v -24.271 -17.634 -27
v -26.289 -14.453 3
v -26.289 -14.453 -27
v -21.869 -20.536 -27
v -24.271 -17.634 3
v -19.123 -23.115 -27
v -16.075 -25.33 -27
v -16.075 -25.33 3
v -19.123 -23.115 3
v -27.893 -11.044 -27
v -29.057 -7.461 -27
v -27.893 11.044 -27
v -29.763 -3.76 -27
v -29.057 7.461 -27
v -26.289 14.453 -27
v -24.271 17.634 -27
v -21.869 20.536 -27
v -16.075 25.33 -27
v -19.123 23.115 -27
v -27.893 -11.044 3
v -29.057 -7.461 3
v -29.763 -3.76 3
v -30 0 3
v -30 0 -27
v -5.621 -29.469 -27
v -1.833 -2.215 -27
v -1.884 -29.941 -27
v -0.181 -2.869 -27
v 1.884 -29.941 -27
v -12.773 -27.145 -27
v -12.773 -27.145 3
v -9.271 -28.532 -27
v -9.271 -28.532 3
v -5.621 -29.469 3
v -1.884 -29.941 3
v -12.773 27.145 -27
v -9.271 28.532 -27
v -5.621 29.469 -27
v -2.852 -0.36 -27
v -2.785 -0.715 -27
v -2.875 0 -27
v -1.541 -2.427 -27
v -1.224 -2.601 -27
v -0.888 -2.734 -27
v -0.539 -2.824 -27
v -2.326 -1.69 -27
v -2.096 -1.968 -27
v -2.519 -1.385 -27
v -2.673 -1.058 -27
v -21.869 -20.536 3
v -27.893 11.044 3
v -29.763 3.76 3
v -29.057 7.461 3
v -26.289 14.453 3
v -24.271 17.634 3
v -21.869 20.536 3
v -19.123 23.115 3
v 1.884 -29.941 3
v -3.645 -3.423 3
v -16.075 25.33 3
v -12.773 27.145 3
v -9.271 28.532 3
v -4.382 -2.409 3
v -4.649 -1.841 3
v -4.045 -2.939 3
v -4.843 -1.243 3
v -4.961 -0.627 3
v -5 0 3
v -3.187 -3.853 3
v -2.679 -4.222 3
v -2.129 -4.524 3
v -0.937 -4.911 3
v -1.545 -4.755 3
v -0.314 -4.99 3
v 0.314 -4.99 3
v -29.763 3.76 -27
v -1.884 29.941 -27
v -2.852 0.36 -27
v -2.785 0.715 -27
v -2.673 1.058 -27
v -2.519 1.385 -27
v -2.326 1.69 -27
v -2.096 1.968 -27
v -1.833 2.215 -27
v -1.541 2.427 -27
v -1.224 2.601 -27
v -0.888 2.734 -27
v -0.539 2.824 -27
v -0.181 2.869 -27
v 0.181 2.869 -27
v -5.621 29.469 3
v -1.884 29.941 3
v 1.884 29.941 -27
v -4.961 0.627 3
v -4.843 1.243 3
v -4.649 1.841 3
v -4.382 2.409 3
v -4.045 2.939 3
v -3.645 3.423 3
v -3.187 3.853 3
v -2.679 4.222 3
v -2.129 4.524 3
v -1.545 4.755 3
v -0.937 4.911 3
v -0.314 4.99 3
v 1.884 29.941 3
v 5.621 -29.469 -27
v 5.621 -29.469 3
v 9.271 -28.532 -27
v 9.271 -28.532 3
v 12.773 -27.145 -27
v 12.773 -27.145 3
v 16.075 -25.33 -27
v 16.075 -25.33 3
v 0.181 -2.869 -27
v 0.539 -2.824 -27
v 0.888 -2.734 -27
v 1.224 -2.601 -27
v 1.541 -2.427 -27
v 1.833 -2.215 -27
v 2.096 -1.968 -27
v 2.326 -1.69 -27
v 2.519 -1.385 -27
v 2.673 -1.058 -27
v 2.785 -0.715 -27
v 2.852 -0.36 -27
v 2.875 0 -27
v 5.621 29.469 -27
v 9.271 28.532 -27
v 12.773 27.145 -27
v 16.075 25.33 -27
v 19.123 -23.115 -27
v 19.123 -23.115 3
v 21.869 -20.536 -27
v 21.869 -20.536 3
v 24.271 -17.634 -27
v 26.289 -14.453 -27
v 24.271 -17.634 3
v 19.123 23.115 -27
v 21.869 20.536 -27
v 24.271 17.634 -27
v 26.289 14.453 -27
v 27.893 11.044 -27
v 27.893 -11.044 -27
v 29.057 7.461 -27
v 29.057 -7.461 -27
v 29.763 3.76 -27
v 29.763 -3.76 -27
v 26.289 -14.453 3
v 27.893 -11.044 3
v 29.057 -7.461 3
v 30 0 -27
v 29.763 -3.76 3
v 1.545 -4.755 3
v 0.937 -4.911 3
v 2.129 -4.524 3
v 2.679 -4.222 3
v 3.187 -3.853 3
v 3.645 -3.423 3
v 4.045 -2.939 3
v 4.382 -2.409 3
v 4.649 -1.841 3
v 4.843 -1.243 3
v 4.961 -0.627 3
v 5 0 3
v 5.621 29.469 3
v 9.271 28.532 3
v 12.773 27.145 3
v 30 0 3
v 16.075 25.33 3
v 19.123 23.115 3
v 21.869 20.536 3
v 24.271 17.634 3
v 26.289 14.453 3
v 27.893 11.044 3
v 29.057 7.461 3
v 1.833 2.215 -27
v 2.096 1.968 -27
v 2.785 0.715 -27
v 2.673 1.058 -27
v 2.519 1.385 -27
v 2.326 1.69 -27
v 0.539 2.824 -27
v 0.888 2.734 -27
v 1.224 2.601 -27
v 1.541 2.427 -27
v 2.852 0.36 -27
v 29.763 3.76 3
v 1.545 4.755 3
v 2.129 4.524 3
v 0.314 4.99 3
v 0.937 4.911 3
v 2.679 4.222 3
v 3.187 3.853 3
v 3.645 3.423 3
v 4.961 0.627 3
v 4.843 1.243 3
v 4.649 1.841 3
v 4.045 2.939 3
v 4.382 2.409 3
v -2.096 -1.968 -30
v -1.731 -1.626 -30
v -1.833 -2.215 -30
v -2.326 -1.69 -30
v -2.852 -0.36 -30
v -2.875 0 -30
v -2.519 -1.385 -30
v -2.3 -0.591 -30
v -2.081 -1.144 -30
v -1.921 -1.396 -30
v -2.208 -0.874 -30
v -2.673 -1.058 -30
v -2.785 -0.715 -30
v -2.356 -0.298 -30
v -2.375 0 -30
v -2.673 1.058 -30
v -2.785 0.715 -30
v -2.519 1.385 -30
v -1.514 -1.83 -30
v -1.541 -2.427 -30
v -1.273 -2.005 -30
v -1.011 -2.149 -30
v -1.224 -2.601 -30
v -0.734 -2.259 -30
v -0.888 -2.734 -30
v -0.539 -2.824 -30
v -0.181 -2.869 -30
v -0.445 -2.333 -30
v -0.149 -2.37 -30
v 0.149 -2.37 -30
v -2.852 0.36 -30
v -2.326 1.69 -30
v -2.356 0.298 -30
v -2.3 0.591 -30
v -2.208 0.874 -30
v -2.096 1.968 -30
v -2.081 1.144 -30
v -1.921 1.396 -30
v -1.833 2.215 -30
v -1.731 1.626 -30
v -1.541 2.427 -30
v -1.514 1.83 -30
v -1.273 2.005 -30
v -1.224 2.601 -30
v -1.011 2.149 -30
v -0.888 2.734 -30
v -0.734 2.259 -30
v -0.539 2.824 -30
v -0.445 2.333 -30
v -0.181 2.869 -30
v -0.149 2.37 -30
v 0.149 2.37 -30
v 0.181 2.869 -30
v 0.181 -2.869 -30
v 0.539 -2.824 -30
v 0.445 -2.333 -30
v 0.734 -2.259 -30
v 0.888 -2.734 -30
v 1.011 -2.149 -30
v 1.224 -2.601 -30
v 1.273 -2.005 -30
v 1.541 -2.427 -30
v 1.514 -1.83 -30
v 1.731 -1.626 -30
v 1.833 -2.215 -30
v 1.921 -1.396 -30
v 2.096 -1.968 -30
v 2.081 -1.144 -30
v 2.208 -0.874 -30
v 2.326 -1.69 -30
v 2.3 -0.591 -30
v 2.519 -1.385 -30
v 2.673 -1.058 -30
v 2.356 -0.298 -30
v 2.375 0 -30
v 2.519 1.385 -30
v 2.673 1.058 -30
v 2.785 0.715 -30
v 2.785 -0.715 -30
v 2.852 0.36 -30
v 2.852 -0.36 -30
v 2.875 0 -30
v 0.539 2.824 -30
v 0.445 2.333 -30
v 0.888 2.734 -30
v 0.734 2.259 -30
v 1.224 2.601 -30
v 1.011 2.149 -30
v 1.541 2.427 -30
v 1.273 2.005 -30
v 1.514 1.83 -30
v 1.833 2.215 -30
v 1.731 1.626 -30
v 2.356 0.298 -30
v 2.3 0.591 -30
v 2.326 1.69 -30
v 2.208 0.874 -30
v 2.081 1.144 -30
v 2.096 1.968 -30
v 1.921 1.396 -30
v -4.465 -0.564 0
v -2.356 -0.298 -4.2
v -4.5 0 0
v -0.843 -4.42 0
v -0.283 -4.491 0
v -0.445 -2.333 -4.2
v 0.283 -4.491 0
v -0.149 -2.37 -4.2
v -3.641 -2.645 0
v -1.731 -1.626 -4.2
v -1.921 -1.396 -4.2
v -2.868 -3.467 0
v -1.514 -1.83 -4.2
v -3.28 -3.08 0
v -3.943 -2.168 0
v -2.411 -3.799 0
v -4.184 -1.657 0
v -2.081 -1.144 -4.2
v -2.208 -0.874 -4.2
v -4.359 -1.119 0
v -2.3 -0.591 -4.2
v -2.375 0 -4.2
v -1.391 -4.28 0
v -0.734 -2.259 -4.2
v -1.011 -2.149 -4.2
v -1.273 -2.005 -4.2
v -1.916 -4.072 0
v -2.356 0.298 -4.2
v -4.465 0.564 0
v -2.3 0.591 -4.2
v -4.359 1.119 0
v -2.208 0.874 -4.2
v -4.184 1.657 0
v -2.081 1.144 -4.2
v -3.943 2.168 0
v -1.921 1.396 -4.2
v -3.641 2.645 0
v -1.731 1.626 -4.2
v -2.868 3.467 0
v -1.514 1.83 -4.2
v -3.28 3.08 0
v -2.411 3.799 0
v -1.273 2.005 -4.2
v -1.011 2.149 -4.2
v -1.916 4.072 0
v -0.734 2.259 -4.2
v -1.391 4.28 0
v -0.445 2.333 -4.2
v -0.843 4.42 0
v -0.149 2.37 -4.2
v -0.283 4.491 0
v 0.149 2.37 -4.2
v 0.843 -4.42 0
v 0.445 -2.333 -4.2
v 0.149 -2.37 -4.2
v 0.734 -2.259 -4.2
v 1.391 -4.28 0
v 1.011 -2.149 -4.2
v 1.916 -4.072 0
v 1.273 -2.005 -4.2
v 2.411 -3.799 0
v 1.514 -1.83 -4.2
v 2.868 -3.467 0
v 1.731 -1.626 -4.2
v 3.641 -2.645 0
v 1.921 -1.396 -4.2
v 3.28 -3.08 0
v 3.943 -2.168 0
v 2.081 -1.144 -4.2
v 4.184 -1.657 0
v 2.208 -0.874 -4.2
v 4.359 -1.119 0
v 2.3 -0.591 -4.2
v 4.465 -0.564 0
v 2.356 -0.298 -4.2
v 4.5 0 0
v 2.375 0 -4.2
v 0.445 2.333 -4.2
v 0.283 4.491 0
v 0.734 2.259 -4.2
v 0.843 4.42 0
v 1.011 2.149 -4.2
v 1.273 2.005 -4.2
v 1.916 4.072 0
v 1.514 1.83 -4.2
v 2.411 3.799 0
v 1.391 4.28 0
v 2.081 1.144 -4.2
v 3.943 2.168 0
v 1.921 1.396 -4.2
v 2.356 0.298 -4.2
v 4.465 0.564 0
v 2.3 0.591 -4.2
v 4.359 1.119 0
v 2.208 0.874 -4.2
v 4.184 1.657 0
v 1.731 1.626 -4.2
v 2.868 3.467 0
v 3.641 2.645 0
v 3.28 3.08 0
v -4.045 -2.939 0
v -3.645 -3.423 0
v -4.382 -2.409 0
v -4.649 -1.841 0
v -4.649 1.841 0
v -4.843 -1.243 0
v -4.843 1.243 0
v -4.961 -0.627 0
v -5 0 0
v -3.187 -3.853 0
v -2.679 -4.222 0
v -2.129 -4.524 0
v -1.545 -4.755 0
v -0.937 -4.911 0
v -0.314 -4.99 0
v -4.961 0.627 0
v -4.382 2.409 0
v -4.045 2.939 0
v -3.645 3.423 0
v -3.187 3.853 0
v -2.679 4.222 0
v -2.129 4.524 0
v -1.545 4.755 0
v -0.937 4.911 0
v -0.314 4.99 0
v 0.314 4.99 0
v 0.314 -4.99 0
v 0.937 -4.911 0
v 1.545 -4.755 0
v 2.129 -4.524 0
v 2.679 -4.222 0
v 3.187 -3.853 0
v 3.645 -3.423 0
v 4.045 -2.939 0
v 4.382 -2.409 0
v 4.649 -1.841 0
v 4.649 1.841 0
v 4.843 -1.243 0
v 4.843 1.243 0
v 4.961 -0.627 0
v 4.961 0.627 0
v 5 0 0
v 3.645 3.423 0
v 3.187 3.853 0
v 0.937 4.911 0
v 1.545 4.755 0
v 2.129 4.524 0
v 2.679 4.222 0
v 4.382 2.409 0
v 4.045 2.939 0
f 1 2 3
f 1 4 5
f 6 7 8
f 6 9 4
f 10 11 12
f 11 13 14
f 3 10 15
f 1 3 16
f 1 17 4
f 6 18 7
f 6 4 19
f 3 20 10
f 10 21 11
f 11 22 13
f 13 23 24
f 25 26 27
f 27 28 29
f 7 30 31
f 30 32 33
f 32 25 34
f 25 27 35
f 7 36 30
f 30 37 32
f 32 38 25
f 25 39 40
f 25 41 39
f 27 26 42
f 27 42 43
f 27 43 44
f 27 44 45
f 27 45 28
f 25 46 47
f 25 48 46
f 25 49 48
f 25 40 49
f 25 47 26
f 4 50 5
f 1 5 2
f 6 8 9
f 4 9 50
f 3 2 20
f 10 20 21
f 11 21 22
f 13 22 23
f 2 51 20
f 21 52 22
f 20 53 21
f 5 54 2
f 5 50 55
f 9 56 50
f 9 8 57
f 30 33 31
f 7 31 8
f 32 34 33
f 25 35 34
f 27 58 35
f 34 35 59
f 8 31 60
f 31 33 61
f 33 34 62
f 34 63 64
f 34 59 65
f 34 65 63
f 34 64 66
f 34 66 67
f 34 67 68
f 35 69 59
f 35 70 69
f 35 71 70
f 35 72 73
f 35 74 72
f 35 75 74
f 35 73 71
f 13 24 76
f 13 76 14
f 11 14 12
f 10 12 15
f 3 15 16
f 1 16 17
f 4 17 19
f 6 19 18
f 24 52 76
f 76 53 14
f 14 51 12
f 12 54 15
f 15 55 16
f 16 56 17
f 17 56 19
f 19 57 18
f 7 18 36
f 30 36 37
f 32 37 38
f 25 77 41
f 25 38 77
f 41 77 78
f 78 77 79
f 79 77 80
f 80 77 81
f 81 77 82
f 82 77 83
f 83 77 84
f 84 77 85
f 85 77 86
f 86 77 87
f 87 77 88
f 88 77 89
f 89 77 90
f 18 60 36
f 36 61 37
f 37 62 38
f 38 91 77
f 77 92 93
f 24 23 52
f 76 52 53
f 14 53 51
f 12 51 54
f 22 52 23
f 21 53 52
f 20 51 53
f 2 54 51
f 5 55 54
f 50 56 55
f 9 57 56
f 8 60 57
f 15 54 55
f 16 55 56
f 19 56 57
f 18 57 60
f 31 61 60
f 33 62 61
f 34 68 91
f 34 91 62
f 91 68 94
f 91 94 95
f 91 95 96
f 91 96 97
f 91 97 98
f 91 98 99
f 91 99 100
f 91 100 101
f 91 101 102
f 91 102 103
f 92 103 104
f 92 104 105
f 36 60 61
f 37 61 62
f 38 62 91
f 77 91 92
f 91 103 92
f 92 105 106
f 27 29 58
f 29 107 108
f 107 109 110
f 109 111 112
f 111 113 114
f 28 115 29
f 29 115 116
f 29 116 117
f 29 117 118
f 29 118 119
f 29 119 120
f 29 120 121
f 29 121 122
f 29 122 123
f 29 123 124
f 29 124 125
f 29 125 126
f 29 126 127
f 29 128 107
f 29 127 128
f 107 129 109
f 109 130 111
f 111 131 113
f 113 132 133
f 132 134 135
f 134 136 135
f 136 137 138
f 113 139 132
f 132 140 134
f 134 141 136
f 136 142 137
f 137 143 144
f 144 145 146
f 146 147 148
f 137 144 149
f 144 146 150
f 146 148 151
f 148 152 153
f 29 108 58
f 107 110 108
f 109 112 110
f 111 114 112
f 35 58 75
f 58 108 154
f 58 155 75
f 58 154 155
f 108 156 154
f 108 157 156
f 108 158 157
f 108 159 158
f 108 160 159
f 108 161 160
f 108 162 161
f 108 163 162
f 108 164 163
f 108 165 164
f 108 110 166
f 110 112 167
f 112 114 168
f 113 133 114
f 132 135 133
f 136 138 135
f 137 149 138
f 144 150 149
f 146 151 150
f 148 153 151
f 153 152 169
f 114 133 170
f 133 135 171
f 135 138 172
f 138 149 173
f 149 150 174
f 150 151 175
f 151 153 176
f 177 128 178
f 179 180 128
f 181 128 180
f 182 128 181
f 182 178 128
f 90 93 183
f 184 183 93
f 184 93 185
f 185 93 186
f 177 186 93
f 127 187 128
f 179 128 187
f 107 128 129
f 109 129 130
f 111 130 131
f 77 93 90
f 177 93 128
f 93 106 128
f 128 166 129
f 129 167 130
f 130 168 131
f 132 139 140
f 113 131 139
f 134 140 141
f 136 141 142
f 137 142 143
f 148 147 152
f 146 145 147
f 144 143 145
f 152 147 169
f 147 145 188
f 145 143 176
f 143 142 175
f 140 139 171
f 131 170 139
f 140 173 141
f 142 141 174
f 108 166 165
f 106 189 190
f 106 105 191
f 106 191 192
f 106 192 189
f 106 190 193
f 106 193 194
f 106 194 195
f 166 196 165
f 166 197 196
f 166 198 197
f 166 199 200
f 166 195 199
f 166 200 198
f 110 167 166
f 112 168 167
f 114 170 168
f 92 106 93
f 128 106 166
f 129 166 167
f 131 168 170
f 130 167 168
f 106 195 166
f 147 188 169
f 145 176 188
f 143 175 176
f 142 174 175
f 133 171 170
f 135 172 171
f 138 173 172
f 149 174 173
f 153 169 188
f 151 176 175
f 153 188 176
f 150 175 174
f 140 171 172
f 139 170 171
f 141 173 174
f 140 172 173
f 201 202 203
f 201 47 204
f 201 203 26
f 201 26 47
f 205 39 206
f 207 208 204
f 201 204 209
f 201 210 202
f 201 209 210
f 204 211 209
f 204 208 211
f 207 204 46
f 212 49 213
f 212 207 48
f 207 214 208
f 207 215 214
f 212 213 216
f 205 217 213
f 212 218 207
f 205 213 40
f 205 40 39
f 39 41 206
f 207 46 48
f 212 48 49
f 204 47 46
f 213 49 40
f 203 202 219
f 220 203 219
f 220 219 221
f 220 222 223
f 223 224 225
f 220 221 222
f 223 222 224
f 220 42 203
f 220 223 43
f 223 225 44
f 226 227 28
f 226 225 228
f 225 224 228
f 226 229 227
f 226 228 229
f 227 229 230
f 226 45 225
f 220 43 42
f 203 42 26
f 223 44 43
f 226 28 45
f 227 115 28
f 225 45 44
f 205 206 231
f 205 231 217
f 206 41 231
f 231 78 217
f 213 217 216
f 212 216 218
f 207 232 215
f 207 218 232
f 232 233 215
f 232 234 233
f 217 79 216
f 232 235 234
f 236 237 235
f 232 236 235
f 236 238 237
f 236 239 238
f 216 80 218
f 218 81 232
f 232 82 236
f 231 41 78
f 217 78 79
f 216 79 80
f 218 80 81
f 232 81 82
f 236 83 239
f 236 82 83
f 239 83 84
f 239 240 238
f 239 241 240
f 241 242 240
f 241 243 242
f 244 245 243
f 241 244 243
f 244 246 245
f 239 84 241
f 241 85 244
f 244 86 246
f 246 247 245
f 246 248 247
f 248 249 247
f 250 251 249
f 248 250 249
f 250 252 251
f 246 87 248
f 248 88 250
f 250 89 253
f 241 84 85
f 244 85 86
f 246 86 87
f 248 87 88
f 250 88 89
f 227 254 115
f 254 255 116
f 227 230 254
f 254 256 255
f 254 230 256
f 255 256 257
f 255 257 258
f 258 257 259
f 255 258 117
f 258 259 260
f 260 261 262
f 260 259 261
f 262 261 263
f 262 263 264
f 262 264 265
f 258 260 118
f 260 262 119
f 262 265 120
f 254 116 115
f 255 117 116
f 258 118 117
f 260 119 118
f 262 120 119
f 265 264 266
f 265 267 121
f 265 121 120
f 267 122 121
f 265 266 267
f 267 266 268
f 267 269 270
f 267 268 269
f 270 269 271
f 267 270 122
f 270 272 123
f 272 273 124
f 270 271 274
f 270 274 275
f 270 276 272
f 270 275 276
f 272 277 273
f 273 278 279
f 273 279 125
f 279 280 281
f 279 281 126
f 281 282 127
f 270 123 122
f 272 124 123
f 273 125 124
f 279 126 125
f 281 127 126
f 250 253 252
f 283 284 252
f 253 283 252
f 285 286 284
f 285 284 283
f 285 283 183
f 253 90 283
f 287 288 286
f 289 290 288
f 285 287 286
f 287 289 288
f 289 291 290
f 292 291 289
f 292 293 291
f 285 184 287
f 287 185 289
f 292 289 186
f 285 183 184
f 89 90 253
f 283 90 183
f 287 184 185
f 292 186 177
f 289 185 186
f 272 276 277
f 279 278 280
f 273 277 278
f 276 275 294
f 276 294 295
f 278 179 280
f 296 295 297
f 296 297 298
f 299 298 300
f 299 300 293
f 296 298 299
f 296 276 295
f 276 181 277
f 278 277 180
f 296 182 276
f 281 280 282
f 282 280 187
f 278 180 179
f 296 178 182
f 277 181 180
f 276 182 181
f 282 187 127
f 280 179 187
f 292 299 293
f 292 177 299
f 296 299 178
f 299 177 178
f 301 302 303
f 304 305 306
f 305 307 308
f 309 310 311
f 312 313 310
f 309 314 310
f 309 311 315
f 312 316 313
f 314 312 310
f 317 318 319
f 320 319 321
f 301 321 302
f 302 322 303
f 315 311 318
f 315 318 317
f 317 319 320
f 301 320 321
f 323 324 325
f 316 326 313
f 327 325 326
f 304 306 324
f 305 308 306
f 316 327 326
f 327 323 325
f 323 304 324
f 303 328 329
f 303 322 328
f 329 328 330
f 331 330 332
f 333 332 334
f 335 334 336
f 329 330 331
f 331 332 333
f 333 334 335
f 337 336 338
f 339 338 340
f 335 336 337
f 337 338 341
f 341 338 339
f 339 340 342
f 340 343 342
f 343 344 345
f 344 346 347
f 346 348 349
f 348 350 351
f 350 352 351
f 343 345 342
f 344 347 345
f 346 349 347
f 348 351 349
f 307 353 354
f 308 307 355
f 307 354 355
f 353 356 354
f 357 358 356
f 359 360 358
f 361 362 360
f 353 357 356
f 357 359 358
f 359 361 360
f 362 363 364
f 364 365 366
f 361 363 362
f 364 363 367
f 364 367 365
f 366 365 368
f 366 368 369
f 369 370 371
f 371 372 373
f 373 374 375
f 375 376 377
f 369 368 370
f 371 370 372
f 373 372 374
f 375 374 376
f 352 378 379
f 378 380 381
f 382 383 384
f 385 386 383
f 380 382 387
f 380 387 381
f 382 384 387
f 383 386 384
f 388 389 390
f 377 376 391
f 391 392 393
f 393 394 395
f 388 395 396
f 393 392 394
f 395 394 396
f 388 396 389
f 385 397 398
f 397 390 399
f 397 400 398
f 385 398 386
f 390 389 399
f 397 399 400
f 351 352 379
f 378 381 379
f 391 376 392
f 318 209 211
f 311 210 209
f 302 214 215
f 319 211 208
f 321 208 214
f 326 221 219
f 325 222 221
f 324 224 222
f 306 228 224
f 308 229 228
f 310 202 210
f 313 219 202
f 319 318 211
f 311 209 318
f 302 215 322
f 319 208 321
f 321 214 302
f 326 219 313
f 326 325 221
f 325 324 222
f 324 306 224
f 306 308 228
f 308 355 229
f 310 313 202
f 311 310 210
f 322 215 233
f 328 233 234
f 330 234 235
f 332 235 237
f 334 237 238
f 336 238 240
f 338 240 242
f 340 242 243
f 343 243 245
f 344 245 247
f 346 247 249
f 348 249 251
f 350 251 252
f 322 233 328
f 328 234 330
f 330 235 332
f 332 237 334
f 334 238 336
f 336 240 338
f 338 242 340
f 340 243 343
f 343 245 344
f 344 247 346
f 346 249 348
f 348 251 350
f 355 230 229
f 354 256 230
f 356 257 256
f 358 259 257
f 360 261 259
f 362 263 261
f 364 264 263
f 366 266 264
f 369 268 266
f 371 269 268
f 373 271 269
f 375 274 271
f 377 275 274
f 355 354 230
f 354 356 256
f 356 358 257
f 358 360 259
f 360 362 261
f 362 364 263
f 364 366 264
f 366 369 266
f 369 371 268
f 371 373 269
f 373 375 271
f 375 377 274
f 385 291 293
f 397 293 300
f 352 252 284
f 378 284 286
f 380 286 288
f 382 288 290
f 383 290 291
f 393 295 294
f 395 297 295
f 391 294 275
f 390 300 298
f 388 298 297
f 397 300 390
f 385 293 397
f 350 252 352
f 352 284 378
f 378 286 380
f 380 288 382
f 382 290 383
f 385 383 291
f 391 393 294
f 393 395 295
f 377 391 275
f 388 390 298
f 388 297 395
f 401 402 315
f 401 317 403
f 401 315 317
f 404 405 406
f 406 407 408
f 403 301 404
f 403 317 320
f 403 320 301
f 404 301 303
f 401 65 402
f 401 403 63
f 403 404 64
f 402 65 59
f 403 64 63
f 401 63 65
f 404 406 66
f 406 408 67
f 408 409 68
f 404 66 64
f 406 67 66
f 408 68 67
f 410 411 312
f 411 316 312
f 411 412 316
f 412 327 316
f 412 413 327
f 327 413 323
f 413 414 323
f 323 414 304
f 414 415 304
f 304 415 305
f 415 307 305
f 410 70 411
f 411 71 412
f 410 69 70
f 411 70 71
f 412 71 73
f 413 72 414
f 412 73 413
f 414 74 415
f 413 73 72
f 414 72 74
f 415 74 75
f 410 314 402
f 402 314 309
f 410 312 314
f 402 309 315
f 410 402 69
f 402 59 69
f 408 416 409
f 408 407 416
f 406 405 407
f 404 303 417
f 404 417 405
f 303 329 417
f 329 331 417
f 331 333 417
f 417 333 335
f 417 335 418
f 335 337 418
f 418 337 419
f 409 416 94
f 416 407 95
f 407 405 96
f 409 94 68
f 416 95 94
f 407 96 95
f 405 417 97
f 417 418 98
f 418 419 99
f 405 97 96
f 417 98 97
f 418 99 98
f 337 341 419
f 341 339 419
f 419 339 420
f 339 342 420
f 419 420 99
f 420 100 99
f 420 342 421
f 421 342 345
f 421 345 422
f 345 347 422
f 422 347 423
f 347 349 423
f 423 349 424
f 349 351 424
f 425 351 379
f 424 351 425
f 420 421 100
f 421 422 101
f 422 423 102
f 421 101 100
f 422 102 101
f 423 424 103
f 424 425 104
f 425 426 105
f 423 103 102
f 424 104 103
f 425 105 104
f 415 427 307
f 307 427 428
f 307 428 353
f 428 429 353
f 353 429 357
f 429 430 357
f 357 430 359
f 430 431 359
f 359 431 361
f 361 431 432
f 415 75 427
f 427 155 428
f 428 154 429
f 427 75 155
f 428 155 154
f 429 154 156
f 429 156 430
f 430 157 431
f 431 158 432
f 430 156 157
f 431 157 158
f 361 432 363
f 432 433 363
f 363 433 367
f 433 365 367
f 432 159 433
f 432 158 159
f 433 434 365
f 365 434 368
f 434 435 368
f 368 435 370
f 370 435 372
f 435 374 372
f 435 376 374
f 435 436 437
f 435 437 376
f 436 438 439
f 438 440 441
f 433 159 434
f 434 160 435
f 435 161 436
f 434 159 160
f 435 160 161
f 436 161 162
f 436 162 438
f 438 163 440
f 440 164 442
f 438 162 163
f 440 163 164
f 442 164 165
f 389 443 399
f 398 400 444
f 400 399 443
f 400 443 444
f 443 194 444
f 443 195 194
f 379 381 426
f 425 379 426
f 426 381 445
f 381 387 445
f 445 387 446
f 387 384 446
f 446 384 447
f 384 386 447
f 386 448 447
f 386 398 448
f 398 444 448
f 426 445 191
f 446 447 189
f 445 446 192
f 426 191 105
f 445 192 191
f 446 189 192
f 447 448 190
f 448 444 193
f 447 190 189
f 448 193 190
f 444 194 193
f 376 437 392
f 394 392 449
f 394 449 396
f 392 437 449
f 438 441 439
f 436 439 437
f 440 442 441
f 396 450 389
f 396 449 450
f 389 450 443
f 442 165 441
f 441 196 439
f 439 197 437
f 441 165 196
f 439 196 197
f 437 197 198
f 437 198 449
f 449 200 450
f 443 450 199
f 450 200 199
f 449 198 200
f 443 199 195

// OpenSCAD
$fn = 50;

difference() {
	union() {
		translate(v = [0, 0, -27.0]) {
			cylinder(h = 30, r = 30.0);
		}
		#translate(v = [0, 0, -30.0]) {
			cylinder(h = 30, r = 2.875);
		}
	}
	union() {
		translate(v = [0, 0, 0]) {
			rotate(a = [0, 0, 0]) {
				difference() {
					union() {
						translate(v = [0, 0, -30.0]) {
							cylinder(h = 30, r = 2.25);
						}
						translate(v = [0, 0, -4.2]) {
							cylinder(h = 4.2, r1 = 2.375, r2 = 4.5);
						}
						translate(v = [0, 0, -30.0]) {
							cylinder(h = 30, r = 2.375);
						}
						translate(v = [0, 0, -30.0]) {
							cylinder(h = 30, r = 2.25);
						}
					}
					union();
				}
			}
		}
		#cylinder(h = 3, r = 5.0);
	}
}
